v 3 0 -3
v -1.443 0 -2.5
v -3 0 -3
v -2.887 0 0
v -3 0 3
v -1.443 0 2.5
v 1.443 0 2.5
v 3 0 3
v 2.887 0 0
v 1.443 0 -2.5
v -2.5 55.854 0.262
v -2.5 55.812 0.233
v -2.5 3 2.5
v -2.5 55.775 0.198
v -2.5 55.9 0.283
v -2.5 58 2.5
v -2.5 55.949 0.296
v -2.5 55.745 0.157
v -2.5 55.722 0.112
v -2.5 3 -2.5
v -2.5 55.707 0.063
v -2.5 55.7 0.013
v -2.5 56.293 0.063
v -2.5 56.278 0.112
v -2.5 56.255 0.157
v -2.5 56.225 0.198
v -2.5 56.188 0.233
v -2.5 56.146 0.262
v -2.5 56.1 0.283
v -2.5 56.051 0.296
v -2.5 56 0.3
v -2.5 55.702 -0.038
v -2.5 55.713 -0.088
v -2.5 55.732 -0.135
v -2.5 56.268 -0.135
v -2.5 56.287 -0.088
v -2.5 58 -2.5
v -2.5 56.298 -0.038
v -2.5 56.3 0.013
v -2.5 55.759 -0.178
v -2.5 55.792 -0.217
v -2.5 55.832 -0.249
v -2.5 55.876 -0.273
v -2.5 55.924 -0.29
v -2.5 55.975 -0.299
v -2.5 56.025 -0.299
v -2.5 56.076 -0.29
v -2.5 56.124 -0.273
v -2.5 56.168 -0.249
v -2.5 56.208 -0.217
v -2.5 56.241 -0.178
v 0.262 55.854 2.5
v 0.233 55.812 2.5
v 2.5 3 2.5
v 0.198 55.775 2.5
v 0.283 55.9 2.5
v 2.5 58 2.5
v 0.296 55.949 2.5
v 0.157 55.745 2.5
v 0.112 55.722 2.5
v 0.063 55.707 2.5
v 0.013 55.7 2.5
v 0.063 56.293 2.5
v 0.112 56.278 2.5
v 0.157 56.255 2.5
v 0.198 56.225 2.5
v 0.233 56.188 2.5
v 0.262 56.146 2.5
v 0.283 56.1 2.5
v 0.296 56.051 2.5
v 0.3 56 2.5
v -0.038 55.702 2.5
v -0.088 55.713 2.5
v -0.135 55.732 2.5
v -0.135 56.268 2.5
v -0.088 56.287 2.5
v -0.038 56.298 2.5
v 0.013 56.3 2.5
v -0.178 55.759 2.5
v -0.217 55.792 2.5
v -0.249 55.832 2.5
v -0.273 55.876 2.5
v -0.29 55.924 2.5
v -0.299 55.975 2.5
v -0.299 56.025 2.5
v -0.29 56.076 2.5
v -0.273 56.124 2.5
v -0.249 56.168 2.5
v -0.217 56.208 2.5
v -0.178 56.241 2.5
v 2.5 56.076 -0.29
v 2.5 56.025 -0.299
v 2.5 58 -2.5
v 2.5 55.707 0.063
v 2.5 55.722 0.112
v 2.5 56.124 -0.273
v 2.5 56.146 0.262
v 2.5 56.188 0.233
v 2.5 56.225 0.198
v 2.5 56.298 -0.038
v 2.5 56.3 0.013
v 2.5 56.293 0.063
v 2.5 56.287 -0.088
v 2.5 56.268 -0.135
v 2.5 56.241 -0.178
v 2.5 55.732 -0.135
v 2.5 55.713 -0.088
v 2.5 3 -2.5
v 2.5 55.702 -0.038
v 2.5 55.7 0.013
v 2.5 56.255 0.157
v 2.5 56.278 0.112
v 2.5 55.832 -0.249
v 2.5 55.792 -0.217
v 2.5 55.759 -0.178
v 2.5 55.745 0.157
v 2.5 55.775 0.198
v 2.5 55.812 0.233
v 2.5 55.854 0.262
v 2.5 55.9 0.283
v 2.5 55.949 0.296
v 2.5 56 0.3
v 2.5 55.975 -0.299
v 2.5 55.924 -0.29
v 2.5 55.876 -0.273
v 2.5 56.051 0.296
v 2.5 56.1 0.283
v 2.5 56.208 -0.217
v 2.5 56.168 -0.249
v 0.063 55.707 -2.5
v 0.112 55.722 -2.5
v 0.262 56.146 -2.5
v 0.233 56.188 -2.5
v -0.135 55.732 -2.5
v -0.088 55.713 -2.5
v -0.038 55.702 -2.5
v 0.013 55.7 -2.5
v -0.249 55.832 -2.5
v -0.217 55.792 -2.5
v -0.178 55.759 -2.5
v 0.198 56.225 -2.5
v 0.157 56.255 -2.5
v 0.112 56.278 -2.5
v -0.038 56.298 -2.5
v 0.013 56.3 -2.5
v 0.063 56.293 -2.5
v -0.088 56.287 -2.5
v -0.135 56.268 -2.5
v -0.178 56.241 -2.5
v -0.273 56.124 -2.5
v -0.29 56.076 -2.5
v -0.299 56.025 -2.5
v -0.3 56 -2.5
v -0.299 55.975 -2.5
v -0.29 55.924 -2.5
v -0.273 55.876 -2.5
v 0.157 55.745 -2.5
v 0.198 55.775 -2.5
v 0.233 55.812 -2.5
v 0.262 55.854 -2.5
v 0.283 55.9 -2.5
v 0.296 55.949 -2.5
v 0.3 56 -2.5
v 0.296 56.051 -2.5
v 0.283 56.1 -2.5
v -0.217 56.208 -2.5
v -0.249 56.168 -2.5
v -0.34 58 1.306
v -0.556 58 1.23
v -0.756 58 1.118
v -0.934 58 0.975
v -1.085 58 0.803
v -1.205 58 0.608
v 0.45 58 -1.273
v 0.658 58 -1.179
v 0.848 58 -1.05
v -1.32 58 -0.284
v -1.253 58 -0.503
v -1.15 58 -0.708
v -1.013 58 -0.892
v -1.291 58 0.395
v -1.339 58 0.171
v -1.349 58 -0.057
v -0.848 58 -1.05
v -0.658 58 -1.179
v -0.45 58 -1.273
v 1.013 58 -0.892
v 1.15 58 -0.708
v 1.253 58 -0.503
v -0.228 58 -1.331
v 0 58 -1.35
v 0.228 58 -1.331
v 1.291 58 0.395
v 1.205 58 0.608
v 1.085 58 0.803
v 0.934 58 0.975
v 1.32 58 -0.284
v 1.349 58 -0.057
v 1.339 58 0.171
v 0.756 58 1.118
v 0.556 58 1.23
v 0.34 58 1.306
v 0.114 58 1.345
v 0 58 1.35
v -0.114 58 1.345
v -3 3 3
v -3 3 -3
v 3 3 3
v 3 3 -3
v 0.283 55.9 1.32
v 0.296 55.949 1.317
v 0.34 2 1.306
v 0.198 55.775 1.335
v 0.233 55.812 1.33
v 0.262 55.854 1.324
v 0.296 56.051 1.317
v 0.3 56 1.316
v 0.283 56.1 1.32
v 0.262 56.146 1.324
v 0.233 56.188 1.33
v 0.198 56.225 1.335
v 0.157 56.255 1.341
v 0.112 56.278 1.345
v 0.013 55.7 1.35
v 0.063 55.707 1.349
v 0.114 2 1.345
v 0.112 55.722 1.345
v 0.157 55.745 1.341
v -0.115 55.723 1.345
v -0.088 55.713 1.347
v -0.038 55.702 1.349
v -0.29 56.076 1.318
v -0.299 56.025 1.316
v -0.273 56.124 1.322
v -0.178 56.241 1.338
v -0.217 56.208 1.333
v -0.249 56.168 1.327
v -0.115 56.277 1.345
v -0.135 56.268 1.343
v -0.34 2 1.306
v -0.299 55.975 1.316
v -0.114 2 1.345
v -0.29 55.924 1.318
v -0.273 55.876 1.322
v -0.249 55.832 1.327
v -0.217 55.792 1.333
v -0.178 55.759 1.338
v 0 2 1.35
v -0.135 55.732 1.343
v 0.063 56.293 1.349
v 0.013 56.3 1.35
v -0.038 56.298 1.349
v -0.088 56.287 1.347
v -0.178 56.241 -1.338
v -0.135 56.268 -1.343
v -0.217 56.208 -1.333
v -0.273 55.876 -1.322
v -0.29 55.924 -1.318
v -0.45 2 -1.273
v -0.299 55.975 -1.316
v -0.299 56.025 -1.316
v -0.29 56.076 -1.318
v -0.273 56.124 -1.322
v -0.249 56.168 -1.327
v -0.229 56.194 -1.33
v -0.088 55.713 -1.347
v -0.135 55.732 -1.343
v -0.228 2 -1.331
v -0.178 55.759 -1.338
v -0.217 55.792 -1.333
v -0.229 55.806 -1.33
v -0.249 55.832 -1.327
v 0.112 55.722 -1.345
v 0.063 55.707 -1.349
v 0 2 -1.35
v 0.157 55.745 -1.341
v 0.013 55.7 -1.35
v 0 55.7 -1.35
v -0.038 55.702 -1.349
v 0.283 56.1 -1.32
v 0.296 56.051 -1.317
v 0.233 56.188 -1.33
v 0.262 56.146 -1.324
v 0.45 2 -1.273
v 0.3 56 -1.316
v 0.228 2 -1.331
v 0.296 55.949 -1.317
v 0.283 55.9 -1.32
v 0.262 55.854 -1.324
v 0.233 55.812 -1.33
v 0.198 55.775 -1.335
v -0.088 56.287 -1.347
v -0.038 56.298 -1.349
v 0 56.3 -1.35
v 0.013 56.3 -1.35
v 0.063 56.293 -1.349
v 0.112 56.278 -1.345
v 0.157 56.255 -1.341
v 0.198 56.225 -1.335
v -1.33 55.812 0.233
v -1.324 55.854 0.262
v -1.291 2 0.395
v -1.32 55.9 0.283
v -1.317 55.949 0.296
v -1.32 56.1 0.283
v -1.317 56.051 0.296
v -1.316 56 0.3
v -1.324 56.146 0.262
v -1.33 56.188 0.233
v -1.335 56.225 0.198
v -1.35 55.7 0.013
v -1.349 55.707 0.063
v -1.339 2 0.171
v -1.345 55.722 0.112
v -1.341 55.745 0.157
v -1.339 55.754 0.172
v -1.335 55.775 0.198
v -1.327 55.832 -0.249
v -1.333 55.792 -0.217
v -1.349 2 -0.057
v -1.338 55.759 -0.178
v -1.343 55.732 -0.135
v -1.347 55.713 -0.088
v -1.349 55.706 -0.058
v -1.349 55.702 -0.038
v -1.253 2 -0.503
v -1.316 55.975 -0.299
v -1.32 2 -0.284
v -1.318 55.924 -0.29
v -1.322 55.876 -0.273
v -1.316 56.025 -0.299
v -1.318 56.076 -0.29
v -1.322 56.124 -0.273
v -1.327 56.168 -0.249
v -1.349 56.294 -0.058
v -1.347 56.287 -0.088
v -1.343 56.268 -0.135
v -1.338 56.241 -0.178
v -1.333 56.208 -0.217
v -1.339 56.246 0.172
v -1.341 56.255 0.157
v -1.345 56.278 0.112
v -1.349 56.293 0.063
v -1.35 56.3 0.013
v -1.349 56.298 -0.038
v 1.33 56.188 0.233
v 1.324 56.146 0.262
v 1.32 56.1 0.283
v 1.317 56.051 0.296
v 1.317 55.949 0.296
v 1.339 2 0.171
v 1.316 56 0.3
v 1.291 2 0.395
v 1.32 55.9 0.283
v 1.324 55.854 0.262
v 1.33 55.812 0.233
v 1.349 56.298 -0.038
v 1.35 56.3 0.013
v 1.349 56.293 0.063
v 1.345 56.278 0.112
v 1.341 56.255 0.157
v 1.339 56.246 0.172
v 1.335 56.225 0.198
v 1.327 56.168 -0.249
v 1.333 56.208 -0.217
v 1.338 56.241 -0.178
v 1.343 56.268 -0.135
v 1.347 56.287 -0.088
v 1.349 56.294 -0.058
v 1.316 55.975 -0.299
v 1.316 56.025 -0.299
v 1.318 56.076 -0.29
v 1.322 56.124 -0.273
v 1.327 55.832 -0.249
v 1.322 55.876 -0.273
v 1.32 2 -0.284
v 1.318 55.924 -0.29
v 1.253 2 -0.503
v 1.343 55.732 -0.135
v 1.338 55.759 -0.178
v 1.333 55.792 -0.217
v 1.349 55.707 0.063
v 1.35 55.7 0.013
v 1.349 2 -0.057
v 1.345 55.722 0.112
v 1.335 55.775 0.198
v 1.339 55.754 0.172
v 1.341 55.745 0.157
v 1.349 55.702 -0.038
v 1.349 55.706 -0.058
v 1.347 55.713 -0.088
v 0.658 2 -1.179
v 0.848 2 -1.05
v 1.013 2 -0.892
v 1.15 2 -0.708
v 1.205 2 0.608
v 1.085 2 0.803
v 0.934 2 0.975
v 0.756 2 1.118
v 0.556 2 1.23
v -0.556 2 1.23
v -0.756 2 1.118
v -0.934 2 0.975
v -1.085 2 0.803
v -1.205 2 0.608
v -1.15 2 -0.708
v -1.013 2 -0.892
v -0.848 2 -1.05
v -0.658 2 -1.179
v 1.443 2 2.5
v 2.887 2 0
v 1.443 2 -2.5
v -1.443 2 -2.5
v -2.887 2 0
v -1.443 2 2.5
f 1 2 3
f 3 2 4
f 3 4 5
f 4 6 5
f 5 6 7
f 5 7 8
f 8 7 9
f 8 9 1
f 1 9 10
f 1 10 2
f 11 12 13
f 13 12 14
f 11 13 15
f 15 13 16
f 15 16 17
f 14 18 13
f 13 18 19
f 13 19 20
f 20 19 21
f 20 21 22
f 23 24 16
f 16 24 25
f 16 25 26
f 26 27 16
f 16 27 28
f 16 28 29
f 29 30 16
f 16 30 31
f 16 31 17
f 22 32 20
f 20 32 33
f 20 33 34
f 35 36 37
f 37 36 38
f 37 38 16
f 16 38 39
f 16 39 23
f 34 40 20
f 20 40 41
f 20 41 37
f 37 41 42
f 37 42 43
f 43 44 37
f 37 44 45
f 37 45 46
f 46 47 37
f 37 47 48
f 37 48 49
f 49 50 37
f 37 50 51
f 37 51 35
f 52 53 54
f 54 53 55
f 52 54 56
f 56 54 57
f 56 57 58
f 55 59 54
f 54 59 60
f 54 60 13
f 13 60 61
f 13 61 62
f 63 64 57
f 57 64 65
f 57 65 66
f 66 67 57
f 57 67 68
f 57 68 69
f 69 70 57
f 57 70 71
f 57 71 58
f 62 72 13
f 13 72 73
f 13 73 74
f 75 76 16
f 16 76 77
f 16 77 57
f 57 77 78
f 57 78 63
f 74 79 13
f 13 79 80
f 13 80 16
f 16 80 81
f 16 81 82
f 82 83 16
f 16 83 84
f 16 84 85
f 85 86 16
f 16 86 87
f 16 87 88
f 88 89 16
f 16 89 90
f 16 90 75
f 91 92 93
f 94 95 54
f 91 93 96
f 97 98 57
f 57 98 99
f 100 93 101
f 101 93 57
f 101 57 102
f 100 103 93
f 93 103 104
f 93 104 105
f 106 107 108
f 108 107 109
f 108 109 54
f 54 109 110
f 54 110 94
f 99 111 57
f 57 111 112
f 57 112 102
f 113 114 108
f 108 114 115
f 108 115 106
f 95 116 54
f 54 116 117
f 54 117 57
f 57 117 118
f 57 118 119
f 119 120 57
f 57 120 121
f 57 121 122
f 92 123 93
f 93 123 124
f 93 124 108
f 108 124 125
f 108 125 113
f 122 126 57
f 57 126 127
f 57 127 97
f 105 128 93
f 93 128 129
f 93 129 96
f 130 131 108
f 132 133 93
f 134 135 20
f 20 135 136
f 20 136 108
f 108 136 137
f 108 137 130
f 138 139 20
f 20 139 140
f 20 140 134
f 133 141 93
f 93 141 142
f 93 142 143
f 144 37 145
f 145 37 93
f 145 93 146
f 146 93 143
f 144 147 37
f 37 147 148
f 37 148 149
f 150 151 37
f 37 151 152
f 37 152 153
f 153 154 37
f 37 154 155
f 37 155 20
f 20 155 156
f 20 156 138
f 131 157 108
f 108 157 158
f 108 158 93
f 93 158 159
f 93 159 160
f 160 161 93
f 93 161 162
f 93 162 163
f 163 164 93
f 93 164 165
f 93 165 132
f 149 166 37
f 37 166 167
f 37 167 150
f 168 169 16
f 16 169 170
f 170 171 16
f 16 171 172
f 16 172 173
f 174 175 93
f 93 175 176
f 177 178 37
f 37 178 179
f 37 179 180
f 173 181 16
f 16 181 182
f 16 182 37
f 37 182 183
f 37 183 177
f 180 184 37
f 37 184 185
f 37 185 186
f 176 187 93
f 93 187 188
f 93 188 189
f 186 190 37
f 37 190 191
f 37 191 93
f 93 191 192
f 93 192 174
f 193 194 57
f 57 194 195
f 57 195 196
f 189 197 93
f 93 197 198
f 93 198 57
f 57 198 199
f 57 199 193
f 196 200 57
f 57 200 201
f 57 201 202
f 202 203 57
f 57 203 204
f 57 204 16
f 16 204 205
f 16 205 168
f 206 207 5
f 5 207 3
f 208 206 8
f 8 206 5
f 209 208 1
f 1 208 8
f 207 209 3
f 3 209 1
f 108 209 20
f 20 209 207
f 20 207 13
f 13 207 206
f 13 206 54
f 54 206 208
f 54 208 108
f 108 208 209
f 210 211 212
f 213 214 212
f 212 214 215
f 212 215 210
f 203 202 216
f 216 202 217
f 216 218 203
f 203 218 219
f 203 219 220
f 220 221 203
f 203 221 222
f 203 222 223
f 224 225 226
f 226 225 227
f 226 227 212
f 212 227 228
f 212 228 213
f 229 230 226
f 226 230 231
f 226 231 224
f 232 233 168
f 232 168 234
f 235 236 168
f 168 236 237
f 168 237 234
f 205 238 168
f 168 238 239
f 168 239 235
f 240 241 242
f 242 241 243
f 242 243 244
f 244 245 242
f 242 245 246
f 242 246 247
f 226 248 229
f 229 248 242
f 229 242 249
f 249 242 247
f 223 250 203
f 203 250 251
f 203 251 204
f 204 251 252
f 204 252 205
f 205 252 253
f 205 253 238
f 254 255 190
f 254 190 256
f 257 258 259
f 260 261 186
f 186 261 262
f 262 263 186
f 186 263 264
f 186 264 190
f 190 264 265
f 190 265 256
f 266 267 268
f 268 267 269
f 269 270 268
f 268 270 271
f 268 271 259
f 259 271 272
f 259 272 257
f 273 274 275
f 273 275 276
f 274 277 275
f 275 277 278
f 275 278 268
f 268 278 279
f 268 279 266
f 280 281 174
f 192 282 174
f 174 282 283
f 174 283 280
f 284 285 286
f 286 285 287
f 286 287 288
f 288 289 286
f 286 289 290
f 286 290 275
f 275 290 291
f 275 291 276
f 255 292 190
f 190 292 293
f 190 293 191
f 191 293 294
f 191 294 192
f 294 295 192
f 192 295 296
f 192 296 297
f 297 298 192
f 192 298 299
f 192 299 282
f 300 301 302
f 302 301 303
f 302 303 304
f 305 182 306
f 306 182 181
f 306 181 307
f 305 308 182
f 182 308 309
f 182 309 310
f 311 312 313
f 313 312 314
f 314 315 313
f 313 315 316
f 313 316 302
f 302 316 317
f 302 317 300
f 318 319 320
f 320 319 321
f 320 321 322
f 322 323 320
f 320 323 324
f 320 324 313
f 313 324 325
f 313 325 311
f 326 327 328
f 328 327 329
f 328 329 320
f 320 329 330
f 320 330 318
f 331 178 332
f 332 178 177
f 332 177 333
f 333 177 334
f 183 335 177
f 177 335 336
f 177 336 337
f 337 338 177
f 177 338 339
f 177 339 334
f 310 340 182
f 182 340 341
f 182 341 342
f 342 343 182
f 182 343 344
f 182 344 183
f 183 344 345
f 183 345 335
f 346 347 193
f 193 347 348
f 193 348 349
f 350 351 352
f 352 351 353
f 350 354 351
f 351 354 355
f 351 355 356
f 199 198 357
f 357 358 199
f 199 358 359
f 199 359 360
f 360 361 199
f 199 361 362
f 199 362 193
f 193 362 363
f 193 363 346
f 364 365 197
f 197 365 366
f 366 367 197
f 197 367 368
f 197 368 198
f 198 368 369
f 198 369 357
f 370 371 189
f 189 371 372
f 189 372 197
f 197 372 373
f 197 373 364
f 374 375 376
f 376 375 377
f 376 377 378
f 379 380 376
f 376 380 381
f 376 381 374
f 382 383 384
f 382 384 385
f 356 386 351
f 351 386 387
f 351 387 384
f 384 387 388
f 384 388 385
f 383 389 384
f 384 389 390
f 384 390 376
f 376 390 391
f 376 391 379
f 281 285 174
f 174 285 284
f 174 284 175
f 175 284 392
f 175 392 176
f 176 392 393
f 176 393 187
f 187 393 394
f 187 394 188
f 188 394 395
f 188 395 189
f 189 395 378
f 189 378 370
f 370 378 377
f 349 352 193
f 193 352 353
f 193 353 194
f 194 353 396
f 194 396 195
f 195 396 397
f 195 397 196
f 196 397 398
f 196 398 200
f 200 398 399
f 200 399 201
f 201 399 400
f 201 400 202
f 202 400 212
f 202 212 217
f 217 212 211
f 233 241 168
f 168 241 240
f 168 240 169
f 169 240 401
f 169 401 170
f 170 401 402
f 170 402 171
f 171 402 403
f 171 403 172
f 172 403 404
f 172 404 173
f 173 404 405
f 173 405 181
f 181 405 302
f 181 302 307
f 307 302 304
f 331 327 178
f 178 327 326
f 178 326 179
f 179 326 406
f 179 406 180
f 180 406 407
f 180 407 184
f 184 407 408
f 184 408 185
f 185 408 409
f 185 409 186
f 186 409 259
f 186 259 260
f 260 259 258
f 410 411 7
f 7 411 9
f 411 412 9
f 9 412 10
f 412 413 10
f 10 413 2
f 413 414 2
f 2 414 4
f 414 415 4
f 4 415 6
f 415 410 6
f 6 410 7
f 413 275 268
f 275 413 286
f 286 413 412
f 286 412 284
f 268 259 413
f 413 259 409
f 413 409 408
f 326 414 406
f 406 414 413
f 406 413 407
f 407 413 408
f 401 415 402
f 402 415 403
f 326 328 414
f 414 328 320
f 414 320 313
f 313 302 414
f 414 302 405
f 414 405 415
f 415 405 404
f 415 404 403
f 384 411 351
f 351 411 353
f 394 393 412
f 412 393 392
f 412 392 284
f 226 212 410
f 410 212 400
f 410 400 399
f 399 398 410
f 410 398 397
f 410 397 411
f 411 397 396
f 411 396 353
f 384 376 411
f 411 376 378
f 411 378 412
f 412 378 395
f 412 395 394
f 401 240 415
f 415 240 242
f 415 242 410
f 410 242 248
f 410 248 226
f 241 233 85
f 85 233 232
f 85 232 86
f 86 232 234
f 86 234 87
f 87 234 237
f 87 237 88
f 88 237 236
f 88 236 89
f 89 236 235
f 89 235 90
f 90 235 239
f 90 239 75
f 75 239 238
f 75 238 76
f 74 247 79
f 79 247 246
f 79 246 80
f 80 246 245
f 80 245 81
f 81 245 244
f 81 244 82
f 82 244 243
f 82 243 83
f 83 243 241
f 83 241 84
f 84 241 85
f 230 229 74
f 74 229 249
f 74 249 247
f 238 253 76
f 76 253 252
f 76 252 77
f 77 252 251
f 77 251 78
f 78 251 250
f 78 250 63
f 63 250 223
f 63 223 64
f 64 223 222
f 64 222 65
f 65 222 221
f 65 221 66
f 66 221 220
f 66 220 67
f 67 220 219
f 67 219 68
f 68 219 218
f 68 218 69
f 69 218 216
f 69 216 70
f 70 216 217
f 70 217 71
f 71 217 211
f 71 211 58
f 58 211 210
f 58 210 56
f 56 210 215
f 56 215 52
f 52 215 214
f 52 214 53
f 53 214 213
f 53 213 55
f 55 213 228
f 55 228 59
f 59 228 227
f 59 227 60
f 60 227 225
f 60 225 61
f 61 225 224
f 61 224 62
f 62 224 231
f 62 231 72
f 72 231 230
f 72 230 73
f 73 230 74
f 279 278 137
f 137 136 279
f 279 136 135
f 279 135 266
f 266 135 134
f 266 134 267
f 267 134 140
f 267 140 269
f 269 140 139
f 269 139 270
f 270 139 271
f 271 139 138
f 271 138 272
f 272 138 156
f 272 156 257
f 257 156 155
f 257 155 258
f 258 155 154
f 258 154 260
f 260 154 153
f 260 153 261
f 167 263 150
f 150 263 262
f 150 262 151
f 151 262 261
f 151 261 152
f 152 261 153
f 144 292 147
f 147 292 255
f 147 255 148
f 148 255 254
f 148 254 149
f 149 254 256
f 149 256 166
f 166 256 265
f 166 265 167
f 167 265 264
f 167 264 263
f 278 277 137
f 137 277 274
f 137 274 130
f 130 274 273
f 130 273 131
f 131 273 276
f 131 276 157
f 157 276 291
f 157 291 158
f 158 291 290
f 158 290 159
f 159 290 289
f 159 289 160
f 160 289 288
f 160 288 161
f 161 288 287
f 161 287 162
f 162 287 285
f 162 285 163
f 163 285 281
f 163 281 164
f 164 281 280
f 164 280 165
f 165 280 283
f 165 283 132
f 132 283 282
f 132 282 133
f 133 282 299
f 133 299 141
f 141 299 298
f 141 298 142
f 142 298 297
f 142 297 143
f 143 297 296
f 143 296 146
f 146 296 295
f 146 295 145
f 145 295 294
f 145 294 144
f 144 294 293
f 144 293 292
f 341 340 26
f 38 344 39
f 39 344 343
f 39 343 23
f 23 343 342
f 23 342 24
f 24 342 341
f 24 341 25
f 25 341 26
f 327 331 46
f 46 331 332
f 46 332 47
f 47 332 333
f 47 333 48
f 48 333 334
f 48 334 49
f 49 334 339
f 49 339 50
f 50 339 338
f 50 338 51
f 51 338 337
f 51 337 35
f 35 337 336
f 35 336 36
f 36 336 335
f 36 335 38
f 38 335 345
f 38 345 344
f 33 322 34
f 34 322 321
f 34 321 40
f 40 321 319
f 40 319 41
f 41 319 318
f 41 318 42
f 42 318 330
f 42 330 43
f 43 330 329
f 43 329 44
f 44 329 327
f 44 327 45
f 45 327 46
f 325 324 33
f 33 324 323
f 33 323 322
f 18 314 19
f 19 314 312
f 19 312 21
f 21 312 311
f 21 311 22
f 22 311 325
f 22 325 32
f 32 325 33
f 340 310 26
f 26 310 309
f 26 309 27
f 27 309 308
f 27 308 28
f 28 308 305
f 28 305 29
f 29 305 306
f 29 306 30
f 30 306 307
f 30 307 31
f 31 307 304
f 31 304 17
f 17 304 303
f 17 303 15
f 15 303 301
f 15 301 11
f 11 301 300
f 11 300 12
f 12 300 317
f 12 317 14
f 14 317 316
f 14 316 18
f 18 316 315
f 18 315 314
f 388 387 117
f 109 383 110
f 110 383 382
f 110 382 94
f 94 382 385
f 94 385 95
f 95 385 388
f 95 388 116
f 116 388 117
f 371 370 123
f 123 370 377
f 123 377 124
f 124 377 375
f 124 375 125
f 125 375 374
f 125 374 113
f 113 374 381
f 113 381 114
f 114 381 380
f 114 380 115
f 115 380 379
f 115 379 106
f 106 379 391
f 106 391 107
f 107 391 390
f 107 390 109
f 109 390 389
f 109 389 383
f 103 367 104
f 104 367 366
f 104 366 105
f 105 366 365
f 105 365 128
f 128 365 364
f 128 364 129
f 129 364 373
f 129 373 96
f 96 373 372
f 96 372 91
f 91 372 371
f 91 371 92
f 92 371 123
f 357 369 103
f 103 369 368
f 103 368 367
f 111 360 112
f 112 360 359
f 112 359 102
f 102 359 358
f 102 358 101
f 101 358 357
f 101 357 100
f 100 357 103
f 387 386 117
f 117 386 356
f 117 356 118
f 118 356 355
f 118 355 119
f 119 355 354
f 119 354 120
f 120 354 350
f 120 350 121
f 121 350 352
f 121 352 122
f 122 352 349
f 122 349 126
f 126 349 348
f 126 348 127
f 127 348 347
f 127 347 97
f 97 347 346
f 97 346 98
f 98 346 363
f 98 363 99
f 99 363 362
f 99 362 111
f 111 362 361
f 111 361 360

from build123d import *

# Parameters (mm, degrees)
SKETCH_1_W          = 5
SKETCH_1_H          = 5
EXTRUDE_1_DEPTH     = 58
SKETCH_1_5_W        = 6
SKETCH_1_5_H        = 6
EXTRUDE_2_DEPTH     = 3
SKETCH_1_3_R        = 1.35
CUT_EXTRUDE_1_DEPTH = 59.154965394
CUT_EXTRUDE_2_DEPTH = 2
SKETCH_3_R          = 0.3
CUT_EXTRUDE_3_DEPTH = 59.337380812
SKETCH_4_R          = 0.3
CUT_EXTRUDE_4_DEPTH = 59.337380911


with BuildPart() as part:
    # 草图1 → 凸台-拉伸1 (new body)
    with BuildSketch(Plane(origin=(0, 0, 0), x_dir=(1, 0, 0), z_dir=(0, 1, 0))):
        Rectangle(SKETCH_1_W, SKETCH_1_H)
    extrude(amount=EXTRUDE_1_DEPTH)

    # 草图1<5> → 凸台-拉伸2 (add)
    with BuildSketch(Plane(origin=(0, 0, 0), x_dir=(1, 0, 0), z_dir=(0, 1, 0))):
        Rectangle(SKETCH_1_5_W, SKETCH_1_5_H)
    extrude(amount=EXTRUDE_2_DEPTH)

    # 草图1<3> → 切除-拉伸1 (cut, through all)
    with BuildSketch(Plane(origin=(0, 0, 0), x_dir=(1, 0, 0), z_dir=(0, 1, 0))):
        Circle(SKETCH_1_3_R)
    extrude(amount=CUT_EXTRUDE_1_DEPTH, mode=Mode.SUBTRACT)

    # 草图1<4> → 切除-拉伸2 (cut)
    with BuildSketch(Plane(origin=(0, 0, 0), x_dir=(1, 0, 0), z_dir=(0, 1, 0))):
        Polygon((2.886751346, 0), (1.443375673, 2.5), (-1.443375673, 2.5), (-2.886751346, 0), (-1.443375673, -2.5), (1.443375673, -2.5), align=None)
    extrude(amount=CUT_EXTRUDE_2_DEPTH, mode=Mode.SUBTRACT)

    # 草图3 → 切除-拉伸3 (cut, through all)
    with BuildSketch(Plane.XY.offset(2.5)):
        with Locations((0, 56)):
            Circle(SKETCH_3_R)
    extrude(amount=-CUT_EXTRUDE_3_DEPTH, mode=Mode.SUBTRACT)

    # 草图4 → 切除-拉伸4 (cut, through all)
    with BuildSketch(Plane.ZY.offset(2.5)):
        with Locations((0, 56)):
            Circle(SKETCH_4_R)
    extrude(amount=-CUT_EXTRUDE_4_DEPTH, mode=Mode.SUBTRACT)


solid = part.part
